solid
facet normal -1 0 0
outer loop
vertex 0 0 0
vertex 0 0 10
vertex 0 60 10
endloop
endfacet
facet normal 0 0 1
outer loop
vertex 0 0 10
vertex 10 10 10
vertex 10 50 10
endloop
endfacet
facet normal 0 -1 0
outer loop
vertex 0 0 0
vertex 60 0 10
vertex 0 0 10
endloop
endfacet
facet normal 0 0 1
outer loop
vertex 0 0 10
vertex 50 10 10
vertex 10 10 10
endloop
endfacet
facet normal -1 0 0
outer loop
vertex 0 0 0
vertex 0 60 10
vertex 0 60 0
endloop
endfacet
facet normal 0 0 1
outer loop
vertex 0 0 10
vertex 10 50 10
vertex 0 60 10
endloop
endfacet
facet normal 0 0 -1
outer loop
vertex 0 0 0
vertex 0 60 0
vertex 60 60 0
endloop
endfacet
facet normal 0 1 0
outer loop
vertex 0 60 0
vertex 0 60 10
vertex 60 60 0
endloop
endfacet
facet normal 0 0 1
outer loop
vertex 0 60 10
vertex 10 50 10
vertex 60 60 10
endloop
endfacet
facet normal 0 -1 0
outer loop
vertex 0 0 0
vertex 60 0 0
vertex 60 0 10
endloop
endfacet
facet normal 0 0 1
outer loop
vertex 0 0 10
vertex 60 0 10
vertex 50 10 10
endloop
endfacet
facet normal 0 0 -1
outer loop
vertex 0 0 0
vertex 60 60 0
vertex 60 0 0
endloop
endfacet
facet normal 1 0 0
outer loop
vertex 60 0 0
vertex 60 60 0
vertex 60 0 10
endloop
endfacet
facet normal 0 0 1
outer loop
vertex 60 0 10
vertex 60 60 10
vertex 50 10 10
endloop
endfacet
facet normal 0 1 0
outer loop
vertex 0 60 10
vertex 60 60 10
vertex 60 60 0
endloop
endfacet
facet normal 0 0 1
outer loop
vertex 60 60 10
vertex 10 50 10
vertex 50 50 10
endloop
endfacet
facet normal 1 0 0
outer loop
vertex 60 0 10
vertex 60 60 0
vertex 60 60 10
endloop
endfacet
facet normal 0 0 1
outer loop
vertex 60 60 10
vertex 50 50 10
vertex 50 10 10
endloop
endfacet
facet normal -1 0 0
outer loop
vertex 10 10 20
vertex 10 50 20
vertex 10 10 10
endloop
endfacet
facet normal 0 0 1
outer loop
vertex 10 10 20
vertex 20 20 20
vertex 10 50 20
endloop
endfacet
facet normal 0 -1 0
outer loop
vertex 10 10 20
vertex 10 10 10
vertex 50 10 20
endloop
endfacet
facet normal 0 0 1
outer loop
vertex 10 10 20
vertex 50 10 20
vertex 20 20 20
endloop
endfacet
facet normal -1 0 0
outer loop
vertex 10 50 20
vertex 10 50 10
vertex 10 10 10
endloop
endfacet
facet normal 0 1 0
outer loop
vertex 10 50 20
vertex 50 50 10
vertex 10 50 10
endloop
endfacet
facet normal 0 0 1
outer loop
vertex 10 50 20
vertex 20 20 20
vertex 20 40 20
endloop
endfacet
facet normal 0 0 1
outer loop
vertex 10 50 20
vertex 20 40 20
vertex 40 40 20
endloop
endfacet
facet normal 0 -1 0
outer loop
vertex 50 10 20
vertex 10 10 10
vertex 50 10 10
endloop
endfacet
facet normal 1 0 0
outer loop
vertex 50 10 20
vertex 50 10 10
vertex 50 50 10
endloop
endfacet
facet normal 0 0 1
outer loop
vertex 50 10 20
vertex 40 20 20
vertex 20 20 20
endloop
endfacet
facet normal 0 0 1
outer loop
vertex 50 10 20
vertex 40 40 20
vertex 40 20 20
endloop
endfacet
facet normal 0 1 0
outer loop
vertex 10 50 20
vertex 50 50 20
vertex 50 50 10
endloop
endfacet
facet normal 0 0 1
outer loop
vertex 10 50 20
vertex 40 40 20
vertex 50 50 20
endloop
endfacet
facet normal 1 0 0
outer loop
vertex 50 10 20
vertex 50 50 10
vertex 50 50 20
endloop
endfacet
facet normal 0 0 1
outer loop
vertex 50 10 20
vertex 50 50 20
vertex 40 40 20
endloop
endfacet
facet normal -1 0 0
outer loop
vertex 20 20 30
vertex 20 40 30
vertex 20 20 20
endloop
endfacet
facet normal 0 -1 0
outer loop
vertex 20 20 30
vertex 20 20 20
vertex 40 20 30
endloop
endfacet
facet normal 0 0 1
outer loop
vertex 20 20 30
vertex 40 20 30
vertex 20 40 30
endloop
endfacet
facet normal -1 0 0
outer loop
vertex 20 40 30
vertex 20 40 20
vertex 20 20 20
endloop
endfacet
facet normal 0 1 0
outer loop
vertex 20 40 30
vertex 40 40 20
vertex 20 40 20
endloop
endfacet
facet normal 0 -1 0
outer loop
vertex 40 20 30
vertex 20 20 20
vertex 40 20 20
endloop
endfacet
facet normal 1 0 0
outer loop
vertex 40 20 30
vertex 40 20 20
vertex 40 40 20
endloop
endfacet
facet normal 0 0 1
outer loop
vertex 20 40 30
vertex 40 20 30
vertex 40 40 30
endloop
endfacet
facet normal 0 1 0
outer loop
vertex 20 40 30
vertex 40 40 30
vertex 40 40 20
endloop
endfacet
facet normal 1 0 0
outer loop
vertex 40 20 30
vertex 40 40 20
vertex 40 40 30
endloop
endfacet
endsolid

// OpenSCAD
// 3段の階段状ピラミッド
// 各段の中心を揃えて積み上げる

// 1段目: 60mm x 60mm x 高さ10mm
translate([0, 0, 0])
    cube([60, 60, 10], center = false);

// 2段目: 40mm x 40mm x 高さ10mm(中心を揃える)
translate([10, 10, 10])
    cube([40, 40, 10], center = false);

// 3段目: 20mm x 20mm x 高さ10mm(中心を揃える)
translate([20, 20, 20])
    cube([20, 20, 10], center = false);
